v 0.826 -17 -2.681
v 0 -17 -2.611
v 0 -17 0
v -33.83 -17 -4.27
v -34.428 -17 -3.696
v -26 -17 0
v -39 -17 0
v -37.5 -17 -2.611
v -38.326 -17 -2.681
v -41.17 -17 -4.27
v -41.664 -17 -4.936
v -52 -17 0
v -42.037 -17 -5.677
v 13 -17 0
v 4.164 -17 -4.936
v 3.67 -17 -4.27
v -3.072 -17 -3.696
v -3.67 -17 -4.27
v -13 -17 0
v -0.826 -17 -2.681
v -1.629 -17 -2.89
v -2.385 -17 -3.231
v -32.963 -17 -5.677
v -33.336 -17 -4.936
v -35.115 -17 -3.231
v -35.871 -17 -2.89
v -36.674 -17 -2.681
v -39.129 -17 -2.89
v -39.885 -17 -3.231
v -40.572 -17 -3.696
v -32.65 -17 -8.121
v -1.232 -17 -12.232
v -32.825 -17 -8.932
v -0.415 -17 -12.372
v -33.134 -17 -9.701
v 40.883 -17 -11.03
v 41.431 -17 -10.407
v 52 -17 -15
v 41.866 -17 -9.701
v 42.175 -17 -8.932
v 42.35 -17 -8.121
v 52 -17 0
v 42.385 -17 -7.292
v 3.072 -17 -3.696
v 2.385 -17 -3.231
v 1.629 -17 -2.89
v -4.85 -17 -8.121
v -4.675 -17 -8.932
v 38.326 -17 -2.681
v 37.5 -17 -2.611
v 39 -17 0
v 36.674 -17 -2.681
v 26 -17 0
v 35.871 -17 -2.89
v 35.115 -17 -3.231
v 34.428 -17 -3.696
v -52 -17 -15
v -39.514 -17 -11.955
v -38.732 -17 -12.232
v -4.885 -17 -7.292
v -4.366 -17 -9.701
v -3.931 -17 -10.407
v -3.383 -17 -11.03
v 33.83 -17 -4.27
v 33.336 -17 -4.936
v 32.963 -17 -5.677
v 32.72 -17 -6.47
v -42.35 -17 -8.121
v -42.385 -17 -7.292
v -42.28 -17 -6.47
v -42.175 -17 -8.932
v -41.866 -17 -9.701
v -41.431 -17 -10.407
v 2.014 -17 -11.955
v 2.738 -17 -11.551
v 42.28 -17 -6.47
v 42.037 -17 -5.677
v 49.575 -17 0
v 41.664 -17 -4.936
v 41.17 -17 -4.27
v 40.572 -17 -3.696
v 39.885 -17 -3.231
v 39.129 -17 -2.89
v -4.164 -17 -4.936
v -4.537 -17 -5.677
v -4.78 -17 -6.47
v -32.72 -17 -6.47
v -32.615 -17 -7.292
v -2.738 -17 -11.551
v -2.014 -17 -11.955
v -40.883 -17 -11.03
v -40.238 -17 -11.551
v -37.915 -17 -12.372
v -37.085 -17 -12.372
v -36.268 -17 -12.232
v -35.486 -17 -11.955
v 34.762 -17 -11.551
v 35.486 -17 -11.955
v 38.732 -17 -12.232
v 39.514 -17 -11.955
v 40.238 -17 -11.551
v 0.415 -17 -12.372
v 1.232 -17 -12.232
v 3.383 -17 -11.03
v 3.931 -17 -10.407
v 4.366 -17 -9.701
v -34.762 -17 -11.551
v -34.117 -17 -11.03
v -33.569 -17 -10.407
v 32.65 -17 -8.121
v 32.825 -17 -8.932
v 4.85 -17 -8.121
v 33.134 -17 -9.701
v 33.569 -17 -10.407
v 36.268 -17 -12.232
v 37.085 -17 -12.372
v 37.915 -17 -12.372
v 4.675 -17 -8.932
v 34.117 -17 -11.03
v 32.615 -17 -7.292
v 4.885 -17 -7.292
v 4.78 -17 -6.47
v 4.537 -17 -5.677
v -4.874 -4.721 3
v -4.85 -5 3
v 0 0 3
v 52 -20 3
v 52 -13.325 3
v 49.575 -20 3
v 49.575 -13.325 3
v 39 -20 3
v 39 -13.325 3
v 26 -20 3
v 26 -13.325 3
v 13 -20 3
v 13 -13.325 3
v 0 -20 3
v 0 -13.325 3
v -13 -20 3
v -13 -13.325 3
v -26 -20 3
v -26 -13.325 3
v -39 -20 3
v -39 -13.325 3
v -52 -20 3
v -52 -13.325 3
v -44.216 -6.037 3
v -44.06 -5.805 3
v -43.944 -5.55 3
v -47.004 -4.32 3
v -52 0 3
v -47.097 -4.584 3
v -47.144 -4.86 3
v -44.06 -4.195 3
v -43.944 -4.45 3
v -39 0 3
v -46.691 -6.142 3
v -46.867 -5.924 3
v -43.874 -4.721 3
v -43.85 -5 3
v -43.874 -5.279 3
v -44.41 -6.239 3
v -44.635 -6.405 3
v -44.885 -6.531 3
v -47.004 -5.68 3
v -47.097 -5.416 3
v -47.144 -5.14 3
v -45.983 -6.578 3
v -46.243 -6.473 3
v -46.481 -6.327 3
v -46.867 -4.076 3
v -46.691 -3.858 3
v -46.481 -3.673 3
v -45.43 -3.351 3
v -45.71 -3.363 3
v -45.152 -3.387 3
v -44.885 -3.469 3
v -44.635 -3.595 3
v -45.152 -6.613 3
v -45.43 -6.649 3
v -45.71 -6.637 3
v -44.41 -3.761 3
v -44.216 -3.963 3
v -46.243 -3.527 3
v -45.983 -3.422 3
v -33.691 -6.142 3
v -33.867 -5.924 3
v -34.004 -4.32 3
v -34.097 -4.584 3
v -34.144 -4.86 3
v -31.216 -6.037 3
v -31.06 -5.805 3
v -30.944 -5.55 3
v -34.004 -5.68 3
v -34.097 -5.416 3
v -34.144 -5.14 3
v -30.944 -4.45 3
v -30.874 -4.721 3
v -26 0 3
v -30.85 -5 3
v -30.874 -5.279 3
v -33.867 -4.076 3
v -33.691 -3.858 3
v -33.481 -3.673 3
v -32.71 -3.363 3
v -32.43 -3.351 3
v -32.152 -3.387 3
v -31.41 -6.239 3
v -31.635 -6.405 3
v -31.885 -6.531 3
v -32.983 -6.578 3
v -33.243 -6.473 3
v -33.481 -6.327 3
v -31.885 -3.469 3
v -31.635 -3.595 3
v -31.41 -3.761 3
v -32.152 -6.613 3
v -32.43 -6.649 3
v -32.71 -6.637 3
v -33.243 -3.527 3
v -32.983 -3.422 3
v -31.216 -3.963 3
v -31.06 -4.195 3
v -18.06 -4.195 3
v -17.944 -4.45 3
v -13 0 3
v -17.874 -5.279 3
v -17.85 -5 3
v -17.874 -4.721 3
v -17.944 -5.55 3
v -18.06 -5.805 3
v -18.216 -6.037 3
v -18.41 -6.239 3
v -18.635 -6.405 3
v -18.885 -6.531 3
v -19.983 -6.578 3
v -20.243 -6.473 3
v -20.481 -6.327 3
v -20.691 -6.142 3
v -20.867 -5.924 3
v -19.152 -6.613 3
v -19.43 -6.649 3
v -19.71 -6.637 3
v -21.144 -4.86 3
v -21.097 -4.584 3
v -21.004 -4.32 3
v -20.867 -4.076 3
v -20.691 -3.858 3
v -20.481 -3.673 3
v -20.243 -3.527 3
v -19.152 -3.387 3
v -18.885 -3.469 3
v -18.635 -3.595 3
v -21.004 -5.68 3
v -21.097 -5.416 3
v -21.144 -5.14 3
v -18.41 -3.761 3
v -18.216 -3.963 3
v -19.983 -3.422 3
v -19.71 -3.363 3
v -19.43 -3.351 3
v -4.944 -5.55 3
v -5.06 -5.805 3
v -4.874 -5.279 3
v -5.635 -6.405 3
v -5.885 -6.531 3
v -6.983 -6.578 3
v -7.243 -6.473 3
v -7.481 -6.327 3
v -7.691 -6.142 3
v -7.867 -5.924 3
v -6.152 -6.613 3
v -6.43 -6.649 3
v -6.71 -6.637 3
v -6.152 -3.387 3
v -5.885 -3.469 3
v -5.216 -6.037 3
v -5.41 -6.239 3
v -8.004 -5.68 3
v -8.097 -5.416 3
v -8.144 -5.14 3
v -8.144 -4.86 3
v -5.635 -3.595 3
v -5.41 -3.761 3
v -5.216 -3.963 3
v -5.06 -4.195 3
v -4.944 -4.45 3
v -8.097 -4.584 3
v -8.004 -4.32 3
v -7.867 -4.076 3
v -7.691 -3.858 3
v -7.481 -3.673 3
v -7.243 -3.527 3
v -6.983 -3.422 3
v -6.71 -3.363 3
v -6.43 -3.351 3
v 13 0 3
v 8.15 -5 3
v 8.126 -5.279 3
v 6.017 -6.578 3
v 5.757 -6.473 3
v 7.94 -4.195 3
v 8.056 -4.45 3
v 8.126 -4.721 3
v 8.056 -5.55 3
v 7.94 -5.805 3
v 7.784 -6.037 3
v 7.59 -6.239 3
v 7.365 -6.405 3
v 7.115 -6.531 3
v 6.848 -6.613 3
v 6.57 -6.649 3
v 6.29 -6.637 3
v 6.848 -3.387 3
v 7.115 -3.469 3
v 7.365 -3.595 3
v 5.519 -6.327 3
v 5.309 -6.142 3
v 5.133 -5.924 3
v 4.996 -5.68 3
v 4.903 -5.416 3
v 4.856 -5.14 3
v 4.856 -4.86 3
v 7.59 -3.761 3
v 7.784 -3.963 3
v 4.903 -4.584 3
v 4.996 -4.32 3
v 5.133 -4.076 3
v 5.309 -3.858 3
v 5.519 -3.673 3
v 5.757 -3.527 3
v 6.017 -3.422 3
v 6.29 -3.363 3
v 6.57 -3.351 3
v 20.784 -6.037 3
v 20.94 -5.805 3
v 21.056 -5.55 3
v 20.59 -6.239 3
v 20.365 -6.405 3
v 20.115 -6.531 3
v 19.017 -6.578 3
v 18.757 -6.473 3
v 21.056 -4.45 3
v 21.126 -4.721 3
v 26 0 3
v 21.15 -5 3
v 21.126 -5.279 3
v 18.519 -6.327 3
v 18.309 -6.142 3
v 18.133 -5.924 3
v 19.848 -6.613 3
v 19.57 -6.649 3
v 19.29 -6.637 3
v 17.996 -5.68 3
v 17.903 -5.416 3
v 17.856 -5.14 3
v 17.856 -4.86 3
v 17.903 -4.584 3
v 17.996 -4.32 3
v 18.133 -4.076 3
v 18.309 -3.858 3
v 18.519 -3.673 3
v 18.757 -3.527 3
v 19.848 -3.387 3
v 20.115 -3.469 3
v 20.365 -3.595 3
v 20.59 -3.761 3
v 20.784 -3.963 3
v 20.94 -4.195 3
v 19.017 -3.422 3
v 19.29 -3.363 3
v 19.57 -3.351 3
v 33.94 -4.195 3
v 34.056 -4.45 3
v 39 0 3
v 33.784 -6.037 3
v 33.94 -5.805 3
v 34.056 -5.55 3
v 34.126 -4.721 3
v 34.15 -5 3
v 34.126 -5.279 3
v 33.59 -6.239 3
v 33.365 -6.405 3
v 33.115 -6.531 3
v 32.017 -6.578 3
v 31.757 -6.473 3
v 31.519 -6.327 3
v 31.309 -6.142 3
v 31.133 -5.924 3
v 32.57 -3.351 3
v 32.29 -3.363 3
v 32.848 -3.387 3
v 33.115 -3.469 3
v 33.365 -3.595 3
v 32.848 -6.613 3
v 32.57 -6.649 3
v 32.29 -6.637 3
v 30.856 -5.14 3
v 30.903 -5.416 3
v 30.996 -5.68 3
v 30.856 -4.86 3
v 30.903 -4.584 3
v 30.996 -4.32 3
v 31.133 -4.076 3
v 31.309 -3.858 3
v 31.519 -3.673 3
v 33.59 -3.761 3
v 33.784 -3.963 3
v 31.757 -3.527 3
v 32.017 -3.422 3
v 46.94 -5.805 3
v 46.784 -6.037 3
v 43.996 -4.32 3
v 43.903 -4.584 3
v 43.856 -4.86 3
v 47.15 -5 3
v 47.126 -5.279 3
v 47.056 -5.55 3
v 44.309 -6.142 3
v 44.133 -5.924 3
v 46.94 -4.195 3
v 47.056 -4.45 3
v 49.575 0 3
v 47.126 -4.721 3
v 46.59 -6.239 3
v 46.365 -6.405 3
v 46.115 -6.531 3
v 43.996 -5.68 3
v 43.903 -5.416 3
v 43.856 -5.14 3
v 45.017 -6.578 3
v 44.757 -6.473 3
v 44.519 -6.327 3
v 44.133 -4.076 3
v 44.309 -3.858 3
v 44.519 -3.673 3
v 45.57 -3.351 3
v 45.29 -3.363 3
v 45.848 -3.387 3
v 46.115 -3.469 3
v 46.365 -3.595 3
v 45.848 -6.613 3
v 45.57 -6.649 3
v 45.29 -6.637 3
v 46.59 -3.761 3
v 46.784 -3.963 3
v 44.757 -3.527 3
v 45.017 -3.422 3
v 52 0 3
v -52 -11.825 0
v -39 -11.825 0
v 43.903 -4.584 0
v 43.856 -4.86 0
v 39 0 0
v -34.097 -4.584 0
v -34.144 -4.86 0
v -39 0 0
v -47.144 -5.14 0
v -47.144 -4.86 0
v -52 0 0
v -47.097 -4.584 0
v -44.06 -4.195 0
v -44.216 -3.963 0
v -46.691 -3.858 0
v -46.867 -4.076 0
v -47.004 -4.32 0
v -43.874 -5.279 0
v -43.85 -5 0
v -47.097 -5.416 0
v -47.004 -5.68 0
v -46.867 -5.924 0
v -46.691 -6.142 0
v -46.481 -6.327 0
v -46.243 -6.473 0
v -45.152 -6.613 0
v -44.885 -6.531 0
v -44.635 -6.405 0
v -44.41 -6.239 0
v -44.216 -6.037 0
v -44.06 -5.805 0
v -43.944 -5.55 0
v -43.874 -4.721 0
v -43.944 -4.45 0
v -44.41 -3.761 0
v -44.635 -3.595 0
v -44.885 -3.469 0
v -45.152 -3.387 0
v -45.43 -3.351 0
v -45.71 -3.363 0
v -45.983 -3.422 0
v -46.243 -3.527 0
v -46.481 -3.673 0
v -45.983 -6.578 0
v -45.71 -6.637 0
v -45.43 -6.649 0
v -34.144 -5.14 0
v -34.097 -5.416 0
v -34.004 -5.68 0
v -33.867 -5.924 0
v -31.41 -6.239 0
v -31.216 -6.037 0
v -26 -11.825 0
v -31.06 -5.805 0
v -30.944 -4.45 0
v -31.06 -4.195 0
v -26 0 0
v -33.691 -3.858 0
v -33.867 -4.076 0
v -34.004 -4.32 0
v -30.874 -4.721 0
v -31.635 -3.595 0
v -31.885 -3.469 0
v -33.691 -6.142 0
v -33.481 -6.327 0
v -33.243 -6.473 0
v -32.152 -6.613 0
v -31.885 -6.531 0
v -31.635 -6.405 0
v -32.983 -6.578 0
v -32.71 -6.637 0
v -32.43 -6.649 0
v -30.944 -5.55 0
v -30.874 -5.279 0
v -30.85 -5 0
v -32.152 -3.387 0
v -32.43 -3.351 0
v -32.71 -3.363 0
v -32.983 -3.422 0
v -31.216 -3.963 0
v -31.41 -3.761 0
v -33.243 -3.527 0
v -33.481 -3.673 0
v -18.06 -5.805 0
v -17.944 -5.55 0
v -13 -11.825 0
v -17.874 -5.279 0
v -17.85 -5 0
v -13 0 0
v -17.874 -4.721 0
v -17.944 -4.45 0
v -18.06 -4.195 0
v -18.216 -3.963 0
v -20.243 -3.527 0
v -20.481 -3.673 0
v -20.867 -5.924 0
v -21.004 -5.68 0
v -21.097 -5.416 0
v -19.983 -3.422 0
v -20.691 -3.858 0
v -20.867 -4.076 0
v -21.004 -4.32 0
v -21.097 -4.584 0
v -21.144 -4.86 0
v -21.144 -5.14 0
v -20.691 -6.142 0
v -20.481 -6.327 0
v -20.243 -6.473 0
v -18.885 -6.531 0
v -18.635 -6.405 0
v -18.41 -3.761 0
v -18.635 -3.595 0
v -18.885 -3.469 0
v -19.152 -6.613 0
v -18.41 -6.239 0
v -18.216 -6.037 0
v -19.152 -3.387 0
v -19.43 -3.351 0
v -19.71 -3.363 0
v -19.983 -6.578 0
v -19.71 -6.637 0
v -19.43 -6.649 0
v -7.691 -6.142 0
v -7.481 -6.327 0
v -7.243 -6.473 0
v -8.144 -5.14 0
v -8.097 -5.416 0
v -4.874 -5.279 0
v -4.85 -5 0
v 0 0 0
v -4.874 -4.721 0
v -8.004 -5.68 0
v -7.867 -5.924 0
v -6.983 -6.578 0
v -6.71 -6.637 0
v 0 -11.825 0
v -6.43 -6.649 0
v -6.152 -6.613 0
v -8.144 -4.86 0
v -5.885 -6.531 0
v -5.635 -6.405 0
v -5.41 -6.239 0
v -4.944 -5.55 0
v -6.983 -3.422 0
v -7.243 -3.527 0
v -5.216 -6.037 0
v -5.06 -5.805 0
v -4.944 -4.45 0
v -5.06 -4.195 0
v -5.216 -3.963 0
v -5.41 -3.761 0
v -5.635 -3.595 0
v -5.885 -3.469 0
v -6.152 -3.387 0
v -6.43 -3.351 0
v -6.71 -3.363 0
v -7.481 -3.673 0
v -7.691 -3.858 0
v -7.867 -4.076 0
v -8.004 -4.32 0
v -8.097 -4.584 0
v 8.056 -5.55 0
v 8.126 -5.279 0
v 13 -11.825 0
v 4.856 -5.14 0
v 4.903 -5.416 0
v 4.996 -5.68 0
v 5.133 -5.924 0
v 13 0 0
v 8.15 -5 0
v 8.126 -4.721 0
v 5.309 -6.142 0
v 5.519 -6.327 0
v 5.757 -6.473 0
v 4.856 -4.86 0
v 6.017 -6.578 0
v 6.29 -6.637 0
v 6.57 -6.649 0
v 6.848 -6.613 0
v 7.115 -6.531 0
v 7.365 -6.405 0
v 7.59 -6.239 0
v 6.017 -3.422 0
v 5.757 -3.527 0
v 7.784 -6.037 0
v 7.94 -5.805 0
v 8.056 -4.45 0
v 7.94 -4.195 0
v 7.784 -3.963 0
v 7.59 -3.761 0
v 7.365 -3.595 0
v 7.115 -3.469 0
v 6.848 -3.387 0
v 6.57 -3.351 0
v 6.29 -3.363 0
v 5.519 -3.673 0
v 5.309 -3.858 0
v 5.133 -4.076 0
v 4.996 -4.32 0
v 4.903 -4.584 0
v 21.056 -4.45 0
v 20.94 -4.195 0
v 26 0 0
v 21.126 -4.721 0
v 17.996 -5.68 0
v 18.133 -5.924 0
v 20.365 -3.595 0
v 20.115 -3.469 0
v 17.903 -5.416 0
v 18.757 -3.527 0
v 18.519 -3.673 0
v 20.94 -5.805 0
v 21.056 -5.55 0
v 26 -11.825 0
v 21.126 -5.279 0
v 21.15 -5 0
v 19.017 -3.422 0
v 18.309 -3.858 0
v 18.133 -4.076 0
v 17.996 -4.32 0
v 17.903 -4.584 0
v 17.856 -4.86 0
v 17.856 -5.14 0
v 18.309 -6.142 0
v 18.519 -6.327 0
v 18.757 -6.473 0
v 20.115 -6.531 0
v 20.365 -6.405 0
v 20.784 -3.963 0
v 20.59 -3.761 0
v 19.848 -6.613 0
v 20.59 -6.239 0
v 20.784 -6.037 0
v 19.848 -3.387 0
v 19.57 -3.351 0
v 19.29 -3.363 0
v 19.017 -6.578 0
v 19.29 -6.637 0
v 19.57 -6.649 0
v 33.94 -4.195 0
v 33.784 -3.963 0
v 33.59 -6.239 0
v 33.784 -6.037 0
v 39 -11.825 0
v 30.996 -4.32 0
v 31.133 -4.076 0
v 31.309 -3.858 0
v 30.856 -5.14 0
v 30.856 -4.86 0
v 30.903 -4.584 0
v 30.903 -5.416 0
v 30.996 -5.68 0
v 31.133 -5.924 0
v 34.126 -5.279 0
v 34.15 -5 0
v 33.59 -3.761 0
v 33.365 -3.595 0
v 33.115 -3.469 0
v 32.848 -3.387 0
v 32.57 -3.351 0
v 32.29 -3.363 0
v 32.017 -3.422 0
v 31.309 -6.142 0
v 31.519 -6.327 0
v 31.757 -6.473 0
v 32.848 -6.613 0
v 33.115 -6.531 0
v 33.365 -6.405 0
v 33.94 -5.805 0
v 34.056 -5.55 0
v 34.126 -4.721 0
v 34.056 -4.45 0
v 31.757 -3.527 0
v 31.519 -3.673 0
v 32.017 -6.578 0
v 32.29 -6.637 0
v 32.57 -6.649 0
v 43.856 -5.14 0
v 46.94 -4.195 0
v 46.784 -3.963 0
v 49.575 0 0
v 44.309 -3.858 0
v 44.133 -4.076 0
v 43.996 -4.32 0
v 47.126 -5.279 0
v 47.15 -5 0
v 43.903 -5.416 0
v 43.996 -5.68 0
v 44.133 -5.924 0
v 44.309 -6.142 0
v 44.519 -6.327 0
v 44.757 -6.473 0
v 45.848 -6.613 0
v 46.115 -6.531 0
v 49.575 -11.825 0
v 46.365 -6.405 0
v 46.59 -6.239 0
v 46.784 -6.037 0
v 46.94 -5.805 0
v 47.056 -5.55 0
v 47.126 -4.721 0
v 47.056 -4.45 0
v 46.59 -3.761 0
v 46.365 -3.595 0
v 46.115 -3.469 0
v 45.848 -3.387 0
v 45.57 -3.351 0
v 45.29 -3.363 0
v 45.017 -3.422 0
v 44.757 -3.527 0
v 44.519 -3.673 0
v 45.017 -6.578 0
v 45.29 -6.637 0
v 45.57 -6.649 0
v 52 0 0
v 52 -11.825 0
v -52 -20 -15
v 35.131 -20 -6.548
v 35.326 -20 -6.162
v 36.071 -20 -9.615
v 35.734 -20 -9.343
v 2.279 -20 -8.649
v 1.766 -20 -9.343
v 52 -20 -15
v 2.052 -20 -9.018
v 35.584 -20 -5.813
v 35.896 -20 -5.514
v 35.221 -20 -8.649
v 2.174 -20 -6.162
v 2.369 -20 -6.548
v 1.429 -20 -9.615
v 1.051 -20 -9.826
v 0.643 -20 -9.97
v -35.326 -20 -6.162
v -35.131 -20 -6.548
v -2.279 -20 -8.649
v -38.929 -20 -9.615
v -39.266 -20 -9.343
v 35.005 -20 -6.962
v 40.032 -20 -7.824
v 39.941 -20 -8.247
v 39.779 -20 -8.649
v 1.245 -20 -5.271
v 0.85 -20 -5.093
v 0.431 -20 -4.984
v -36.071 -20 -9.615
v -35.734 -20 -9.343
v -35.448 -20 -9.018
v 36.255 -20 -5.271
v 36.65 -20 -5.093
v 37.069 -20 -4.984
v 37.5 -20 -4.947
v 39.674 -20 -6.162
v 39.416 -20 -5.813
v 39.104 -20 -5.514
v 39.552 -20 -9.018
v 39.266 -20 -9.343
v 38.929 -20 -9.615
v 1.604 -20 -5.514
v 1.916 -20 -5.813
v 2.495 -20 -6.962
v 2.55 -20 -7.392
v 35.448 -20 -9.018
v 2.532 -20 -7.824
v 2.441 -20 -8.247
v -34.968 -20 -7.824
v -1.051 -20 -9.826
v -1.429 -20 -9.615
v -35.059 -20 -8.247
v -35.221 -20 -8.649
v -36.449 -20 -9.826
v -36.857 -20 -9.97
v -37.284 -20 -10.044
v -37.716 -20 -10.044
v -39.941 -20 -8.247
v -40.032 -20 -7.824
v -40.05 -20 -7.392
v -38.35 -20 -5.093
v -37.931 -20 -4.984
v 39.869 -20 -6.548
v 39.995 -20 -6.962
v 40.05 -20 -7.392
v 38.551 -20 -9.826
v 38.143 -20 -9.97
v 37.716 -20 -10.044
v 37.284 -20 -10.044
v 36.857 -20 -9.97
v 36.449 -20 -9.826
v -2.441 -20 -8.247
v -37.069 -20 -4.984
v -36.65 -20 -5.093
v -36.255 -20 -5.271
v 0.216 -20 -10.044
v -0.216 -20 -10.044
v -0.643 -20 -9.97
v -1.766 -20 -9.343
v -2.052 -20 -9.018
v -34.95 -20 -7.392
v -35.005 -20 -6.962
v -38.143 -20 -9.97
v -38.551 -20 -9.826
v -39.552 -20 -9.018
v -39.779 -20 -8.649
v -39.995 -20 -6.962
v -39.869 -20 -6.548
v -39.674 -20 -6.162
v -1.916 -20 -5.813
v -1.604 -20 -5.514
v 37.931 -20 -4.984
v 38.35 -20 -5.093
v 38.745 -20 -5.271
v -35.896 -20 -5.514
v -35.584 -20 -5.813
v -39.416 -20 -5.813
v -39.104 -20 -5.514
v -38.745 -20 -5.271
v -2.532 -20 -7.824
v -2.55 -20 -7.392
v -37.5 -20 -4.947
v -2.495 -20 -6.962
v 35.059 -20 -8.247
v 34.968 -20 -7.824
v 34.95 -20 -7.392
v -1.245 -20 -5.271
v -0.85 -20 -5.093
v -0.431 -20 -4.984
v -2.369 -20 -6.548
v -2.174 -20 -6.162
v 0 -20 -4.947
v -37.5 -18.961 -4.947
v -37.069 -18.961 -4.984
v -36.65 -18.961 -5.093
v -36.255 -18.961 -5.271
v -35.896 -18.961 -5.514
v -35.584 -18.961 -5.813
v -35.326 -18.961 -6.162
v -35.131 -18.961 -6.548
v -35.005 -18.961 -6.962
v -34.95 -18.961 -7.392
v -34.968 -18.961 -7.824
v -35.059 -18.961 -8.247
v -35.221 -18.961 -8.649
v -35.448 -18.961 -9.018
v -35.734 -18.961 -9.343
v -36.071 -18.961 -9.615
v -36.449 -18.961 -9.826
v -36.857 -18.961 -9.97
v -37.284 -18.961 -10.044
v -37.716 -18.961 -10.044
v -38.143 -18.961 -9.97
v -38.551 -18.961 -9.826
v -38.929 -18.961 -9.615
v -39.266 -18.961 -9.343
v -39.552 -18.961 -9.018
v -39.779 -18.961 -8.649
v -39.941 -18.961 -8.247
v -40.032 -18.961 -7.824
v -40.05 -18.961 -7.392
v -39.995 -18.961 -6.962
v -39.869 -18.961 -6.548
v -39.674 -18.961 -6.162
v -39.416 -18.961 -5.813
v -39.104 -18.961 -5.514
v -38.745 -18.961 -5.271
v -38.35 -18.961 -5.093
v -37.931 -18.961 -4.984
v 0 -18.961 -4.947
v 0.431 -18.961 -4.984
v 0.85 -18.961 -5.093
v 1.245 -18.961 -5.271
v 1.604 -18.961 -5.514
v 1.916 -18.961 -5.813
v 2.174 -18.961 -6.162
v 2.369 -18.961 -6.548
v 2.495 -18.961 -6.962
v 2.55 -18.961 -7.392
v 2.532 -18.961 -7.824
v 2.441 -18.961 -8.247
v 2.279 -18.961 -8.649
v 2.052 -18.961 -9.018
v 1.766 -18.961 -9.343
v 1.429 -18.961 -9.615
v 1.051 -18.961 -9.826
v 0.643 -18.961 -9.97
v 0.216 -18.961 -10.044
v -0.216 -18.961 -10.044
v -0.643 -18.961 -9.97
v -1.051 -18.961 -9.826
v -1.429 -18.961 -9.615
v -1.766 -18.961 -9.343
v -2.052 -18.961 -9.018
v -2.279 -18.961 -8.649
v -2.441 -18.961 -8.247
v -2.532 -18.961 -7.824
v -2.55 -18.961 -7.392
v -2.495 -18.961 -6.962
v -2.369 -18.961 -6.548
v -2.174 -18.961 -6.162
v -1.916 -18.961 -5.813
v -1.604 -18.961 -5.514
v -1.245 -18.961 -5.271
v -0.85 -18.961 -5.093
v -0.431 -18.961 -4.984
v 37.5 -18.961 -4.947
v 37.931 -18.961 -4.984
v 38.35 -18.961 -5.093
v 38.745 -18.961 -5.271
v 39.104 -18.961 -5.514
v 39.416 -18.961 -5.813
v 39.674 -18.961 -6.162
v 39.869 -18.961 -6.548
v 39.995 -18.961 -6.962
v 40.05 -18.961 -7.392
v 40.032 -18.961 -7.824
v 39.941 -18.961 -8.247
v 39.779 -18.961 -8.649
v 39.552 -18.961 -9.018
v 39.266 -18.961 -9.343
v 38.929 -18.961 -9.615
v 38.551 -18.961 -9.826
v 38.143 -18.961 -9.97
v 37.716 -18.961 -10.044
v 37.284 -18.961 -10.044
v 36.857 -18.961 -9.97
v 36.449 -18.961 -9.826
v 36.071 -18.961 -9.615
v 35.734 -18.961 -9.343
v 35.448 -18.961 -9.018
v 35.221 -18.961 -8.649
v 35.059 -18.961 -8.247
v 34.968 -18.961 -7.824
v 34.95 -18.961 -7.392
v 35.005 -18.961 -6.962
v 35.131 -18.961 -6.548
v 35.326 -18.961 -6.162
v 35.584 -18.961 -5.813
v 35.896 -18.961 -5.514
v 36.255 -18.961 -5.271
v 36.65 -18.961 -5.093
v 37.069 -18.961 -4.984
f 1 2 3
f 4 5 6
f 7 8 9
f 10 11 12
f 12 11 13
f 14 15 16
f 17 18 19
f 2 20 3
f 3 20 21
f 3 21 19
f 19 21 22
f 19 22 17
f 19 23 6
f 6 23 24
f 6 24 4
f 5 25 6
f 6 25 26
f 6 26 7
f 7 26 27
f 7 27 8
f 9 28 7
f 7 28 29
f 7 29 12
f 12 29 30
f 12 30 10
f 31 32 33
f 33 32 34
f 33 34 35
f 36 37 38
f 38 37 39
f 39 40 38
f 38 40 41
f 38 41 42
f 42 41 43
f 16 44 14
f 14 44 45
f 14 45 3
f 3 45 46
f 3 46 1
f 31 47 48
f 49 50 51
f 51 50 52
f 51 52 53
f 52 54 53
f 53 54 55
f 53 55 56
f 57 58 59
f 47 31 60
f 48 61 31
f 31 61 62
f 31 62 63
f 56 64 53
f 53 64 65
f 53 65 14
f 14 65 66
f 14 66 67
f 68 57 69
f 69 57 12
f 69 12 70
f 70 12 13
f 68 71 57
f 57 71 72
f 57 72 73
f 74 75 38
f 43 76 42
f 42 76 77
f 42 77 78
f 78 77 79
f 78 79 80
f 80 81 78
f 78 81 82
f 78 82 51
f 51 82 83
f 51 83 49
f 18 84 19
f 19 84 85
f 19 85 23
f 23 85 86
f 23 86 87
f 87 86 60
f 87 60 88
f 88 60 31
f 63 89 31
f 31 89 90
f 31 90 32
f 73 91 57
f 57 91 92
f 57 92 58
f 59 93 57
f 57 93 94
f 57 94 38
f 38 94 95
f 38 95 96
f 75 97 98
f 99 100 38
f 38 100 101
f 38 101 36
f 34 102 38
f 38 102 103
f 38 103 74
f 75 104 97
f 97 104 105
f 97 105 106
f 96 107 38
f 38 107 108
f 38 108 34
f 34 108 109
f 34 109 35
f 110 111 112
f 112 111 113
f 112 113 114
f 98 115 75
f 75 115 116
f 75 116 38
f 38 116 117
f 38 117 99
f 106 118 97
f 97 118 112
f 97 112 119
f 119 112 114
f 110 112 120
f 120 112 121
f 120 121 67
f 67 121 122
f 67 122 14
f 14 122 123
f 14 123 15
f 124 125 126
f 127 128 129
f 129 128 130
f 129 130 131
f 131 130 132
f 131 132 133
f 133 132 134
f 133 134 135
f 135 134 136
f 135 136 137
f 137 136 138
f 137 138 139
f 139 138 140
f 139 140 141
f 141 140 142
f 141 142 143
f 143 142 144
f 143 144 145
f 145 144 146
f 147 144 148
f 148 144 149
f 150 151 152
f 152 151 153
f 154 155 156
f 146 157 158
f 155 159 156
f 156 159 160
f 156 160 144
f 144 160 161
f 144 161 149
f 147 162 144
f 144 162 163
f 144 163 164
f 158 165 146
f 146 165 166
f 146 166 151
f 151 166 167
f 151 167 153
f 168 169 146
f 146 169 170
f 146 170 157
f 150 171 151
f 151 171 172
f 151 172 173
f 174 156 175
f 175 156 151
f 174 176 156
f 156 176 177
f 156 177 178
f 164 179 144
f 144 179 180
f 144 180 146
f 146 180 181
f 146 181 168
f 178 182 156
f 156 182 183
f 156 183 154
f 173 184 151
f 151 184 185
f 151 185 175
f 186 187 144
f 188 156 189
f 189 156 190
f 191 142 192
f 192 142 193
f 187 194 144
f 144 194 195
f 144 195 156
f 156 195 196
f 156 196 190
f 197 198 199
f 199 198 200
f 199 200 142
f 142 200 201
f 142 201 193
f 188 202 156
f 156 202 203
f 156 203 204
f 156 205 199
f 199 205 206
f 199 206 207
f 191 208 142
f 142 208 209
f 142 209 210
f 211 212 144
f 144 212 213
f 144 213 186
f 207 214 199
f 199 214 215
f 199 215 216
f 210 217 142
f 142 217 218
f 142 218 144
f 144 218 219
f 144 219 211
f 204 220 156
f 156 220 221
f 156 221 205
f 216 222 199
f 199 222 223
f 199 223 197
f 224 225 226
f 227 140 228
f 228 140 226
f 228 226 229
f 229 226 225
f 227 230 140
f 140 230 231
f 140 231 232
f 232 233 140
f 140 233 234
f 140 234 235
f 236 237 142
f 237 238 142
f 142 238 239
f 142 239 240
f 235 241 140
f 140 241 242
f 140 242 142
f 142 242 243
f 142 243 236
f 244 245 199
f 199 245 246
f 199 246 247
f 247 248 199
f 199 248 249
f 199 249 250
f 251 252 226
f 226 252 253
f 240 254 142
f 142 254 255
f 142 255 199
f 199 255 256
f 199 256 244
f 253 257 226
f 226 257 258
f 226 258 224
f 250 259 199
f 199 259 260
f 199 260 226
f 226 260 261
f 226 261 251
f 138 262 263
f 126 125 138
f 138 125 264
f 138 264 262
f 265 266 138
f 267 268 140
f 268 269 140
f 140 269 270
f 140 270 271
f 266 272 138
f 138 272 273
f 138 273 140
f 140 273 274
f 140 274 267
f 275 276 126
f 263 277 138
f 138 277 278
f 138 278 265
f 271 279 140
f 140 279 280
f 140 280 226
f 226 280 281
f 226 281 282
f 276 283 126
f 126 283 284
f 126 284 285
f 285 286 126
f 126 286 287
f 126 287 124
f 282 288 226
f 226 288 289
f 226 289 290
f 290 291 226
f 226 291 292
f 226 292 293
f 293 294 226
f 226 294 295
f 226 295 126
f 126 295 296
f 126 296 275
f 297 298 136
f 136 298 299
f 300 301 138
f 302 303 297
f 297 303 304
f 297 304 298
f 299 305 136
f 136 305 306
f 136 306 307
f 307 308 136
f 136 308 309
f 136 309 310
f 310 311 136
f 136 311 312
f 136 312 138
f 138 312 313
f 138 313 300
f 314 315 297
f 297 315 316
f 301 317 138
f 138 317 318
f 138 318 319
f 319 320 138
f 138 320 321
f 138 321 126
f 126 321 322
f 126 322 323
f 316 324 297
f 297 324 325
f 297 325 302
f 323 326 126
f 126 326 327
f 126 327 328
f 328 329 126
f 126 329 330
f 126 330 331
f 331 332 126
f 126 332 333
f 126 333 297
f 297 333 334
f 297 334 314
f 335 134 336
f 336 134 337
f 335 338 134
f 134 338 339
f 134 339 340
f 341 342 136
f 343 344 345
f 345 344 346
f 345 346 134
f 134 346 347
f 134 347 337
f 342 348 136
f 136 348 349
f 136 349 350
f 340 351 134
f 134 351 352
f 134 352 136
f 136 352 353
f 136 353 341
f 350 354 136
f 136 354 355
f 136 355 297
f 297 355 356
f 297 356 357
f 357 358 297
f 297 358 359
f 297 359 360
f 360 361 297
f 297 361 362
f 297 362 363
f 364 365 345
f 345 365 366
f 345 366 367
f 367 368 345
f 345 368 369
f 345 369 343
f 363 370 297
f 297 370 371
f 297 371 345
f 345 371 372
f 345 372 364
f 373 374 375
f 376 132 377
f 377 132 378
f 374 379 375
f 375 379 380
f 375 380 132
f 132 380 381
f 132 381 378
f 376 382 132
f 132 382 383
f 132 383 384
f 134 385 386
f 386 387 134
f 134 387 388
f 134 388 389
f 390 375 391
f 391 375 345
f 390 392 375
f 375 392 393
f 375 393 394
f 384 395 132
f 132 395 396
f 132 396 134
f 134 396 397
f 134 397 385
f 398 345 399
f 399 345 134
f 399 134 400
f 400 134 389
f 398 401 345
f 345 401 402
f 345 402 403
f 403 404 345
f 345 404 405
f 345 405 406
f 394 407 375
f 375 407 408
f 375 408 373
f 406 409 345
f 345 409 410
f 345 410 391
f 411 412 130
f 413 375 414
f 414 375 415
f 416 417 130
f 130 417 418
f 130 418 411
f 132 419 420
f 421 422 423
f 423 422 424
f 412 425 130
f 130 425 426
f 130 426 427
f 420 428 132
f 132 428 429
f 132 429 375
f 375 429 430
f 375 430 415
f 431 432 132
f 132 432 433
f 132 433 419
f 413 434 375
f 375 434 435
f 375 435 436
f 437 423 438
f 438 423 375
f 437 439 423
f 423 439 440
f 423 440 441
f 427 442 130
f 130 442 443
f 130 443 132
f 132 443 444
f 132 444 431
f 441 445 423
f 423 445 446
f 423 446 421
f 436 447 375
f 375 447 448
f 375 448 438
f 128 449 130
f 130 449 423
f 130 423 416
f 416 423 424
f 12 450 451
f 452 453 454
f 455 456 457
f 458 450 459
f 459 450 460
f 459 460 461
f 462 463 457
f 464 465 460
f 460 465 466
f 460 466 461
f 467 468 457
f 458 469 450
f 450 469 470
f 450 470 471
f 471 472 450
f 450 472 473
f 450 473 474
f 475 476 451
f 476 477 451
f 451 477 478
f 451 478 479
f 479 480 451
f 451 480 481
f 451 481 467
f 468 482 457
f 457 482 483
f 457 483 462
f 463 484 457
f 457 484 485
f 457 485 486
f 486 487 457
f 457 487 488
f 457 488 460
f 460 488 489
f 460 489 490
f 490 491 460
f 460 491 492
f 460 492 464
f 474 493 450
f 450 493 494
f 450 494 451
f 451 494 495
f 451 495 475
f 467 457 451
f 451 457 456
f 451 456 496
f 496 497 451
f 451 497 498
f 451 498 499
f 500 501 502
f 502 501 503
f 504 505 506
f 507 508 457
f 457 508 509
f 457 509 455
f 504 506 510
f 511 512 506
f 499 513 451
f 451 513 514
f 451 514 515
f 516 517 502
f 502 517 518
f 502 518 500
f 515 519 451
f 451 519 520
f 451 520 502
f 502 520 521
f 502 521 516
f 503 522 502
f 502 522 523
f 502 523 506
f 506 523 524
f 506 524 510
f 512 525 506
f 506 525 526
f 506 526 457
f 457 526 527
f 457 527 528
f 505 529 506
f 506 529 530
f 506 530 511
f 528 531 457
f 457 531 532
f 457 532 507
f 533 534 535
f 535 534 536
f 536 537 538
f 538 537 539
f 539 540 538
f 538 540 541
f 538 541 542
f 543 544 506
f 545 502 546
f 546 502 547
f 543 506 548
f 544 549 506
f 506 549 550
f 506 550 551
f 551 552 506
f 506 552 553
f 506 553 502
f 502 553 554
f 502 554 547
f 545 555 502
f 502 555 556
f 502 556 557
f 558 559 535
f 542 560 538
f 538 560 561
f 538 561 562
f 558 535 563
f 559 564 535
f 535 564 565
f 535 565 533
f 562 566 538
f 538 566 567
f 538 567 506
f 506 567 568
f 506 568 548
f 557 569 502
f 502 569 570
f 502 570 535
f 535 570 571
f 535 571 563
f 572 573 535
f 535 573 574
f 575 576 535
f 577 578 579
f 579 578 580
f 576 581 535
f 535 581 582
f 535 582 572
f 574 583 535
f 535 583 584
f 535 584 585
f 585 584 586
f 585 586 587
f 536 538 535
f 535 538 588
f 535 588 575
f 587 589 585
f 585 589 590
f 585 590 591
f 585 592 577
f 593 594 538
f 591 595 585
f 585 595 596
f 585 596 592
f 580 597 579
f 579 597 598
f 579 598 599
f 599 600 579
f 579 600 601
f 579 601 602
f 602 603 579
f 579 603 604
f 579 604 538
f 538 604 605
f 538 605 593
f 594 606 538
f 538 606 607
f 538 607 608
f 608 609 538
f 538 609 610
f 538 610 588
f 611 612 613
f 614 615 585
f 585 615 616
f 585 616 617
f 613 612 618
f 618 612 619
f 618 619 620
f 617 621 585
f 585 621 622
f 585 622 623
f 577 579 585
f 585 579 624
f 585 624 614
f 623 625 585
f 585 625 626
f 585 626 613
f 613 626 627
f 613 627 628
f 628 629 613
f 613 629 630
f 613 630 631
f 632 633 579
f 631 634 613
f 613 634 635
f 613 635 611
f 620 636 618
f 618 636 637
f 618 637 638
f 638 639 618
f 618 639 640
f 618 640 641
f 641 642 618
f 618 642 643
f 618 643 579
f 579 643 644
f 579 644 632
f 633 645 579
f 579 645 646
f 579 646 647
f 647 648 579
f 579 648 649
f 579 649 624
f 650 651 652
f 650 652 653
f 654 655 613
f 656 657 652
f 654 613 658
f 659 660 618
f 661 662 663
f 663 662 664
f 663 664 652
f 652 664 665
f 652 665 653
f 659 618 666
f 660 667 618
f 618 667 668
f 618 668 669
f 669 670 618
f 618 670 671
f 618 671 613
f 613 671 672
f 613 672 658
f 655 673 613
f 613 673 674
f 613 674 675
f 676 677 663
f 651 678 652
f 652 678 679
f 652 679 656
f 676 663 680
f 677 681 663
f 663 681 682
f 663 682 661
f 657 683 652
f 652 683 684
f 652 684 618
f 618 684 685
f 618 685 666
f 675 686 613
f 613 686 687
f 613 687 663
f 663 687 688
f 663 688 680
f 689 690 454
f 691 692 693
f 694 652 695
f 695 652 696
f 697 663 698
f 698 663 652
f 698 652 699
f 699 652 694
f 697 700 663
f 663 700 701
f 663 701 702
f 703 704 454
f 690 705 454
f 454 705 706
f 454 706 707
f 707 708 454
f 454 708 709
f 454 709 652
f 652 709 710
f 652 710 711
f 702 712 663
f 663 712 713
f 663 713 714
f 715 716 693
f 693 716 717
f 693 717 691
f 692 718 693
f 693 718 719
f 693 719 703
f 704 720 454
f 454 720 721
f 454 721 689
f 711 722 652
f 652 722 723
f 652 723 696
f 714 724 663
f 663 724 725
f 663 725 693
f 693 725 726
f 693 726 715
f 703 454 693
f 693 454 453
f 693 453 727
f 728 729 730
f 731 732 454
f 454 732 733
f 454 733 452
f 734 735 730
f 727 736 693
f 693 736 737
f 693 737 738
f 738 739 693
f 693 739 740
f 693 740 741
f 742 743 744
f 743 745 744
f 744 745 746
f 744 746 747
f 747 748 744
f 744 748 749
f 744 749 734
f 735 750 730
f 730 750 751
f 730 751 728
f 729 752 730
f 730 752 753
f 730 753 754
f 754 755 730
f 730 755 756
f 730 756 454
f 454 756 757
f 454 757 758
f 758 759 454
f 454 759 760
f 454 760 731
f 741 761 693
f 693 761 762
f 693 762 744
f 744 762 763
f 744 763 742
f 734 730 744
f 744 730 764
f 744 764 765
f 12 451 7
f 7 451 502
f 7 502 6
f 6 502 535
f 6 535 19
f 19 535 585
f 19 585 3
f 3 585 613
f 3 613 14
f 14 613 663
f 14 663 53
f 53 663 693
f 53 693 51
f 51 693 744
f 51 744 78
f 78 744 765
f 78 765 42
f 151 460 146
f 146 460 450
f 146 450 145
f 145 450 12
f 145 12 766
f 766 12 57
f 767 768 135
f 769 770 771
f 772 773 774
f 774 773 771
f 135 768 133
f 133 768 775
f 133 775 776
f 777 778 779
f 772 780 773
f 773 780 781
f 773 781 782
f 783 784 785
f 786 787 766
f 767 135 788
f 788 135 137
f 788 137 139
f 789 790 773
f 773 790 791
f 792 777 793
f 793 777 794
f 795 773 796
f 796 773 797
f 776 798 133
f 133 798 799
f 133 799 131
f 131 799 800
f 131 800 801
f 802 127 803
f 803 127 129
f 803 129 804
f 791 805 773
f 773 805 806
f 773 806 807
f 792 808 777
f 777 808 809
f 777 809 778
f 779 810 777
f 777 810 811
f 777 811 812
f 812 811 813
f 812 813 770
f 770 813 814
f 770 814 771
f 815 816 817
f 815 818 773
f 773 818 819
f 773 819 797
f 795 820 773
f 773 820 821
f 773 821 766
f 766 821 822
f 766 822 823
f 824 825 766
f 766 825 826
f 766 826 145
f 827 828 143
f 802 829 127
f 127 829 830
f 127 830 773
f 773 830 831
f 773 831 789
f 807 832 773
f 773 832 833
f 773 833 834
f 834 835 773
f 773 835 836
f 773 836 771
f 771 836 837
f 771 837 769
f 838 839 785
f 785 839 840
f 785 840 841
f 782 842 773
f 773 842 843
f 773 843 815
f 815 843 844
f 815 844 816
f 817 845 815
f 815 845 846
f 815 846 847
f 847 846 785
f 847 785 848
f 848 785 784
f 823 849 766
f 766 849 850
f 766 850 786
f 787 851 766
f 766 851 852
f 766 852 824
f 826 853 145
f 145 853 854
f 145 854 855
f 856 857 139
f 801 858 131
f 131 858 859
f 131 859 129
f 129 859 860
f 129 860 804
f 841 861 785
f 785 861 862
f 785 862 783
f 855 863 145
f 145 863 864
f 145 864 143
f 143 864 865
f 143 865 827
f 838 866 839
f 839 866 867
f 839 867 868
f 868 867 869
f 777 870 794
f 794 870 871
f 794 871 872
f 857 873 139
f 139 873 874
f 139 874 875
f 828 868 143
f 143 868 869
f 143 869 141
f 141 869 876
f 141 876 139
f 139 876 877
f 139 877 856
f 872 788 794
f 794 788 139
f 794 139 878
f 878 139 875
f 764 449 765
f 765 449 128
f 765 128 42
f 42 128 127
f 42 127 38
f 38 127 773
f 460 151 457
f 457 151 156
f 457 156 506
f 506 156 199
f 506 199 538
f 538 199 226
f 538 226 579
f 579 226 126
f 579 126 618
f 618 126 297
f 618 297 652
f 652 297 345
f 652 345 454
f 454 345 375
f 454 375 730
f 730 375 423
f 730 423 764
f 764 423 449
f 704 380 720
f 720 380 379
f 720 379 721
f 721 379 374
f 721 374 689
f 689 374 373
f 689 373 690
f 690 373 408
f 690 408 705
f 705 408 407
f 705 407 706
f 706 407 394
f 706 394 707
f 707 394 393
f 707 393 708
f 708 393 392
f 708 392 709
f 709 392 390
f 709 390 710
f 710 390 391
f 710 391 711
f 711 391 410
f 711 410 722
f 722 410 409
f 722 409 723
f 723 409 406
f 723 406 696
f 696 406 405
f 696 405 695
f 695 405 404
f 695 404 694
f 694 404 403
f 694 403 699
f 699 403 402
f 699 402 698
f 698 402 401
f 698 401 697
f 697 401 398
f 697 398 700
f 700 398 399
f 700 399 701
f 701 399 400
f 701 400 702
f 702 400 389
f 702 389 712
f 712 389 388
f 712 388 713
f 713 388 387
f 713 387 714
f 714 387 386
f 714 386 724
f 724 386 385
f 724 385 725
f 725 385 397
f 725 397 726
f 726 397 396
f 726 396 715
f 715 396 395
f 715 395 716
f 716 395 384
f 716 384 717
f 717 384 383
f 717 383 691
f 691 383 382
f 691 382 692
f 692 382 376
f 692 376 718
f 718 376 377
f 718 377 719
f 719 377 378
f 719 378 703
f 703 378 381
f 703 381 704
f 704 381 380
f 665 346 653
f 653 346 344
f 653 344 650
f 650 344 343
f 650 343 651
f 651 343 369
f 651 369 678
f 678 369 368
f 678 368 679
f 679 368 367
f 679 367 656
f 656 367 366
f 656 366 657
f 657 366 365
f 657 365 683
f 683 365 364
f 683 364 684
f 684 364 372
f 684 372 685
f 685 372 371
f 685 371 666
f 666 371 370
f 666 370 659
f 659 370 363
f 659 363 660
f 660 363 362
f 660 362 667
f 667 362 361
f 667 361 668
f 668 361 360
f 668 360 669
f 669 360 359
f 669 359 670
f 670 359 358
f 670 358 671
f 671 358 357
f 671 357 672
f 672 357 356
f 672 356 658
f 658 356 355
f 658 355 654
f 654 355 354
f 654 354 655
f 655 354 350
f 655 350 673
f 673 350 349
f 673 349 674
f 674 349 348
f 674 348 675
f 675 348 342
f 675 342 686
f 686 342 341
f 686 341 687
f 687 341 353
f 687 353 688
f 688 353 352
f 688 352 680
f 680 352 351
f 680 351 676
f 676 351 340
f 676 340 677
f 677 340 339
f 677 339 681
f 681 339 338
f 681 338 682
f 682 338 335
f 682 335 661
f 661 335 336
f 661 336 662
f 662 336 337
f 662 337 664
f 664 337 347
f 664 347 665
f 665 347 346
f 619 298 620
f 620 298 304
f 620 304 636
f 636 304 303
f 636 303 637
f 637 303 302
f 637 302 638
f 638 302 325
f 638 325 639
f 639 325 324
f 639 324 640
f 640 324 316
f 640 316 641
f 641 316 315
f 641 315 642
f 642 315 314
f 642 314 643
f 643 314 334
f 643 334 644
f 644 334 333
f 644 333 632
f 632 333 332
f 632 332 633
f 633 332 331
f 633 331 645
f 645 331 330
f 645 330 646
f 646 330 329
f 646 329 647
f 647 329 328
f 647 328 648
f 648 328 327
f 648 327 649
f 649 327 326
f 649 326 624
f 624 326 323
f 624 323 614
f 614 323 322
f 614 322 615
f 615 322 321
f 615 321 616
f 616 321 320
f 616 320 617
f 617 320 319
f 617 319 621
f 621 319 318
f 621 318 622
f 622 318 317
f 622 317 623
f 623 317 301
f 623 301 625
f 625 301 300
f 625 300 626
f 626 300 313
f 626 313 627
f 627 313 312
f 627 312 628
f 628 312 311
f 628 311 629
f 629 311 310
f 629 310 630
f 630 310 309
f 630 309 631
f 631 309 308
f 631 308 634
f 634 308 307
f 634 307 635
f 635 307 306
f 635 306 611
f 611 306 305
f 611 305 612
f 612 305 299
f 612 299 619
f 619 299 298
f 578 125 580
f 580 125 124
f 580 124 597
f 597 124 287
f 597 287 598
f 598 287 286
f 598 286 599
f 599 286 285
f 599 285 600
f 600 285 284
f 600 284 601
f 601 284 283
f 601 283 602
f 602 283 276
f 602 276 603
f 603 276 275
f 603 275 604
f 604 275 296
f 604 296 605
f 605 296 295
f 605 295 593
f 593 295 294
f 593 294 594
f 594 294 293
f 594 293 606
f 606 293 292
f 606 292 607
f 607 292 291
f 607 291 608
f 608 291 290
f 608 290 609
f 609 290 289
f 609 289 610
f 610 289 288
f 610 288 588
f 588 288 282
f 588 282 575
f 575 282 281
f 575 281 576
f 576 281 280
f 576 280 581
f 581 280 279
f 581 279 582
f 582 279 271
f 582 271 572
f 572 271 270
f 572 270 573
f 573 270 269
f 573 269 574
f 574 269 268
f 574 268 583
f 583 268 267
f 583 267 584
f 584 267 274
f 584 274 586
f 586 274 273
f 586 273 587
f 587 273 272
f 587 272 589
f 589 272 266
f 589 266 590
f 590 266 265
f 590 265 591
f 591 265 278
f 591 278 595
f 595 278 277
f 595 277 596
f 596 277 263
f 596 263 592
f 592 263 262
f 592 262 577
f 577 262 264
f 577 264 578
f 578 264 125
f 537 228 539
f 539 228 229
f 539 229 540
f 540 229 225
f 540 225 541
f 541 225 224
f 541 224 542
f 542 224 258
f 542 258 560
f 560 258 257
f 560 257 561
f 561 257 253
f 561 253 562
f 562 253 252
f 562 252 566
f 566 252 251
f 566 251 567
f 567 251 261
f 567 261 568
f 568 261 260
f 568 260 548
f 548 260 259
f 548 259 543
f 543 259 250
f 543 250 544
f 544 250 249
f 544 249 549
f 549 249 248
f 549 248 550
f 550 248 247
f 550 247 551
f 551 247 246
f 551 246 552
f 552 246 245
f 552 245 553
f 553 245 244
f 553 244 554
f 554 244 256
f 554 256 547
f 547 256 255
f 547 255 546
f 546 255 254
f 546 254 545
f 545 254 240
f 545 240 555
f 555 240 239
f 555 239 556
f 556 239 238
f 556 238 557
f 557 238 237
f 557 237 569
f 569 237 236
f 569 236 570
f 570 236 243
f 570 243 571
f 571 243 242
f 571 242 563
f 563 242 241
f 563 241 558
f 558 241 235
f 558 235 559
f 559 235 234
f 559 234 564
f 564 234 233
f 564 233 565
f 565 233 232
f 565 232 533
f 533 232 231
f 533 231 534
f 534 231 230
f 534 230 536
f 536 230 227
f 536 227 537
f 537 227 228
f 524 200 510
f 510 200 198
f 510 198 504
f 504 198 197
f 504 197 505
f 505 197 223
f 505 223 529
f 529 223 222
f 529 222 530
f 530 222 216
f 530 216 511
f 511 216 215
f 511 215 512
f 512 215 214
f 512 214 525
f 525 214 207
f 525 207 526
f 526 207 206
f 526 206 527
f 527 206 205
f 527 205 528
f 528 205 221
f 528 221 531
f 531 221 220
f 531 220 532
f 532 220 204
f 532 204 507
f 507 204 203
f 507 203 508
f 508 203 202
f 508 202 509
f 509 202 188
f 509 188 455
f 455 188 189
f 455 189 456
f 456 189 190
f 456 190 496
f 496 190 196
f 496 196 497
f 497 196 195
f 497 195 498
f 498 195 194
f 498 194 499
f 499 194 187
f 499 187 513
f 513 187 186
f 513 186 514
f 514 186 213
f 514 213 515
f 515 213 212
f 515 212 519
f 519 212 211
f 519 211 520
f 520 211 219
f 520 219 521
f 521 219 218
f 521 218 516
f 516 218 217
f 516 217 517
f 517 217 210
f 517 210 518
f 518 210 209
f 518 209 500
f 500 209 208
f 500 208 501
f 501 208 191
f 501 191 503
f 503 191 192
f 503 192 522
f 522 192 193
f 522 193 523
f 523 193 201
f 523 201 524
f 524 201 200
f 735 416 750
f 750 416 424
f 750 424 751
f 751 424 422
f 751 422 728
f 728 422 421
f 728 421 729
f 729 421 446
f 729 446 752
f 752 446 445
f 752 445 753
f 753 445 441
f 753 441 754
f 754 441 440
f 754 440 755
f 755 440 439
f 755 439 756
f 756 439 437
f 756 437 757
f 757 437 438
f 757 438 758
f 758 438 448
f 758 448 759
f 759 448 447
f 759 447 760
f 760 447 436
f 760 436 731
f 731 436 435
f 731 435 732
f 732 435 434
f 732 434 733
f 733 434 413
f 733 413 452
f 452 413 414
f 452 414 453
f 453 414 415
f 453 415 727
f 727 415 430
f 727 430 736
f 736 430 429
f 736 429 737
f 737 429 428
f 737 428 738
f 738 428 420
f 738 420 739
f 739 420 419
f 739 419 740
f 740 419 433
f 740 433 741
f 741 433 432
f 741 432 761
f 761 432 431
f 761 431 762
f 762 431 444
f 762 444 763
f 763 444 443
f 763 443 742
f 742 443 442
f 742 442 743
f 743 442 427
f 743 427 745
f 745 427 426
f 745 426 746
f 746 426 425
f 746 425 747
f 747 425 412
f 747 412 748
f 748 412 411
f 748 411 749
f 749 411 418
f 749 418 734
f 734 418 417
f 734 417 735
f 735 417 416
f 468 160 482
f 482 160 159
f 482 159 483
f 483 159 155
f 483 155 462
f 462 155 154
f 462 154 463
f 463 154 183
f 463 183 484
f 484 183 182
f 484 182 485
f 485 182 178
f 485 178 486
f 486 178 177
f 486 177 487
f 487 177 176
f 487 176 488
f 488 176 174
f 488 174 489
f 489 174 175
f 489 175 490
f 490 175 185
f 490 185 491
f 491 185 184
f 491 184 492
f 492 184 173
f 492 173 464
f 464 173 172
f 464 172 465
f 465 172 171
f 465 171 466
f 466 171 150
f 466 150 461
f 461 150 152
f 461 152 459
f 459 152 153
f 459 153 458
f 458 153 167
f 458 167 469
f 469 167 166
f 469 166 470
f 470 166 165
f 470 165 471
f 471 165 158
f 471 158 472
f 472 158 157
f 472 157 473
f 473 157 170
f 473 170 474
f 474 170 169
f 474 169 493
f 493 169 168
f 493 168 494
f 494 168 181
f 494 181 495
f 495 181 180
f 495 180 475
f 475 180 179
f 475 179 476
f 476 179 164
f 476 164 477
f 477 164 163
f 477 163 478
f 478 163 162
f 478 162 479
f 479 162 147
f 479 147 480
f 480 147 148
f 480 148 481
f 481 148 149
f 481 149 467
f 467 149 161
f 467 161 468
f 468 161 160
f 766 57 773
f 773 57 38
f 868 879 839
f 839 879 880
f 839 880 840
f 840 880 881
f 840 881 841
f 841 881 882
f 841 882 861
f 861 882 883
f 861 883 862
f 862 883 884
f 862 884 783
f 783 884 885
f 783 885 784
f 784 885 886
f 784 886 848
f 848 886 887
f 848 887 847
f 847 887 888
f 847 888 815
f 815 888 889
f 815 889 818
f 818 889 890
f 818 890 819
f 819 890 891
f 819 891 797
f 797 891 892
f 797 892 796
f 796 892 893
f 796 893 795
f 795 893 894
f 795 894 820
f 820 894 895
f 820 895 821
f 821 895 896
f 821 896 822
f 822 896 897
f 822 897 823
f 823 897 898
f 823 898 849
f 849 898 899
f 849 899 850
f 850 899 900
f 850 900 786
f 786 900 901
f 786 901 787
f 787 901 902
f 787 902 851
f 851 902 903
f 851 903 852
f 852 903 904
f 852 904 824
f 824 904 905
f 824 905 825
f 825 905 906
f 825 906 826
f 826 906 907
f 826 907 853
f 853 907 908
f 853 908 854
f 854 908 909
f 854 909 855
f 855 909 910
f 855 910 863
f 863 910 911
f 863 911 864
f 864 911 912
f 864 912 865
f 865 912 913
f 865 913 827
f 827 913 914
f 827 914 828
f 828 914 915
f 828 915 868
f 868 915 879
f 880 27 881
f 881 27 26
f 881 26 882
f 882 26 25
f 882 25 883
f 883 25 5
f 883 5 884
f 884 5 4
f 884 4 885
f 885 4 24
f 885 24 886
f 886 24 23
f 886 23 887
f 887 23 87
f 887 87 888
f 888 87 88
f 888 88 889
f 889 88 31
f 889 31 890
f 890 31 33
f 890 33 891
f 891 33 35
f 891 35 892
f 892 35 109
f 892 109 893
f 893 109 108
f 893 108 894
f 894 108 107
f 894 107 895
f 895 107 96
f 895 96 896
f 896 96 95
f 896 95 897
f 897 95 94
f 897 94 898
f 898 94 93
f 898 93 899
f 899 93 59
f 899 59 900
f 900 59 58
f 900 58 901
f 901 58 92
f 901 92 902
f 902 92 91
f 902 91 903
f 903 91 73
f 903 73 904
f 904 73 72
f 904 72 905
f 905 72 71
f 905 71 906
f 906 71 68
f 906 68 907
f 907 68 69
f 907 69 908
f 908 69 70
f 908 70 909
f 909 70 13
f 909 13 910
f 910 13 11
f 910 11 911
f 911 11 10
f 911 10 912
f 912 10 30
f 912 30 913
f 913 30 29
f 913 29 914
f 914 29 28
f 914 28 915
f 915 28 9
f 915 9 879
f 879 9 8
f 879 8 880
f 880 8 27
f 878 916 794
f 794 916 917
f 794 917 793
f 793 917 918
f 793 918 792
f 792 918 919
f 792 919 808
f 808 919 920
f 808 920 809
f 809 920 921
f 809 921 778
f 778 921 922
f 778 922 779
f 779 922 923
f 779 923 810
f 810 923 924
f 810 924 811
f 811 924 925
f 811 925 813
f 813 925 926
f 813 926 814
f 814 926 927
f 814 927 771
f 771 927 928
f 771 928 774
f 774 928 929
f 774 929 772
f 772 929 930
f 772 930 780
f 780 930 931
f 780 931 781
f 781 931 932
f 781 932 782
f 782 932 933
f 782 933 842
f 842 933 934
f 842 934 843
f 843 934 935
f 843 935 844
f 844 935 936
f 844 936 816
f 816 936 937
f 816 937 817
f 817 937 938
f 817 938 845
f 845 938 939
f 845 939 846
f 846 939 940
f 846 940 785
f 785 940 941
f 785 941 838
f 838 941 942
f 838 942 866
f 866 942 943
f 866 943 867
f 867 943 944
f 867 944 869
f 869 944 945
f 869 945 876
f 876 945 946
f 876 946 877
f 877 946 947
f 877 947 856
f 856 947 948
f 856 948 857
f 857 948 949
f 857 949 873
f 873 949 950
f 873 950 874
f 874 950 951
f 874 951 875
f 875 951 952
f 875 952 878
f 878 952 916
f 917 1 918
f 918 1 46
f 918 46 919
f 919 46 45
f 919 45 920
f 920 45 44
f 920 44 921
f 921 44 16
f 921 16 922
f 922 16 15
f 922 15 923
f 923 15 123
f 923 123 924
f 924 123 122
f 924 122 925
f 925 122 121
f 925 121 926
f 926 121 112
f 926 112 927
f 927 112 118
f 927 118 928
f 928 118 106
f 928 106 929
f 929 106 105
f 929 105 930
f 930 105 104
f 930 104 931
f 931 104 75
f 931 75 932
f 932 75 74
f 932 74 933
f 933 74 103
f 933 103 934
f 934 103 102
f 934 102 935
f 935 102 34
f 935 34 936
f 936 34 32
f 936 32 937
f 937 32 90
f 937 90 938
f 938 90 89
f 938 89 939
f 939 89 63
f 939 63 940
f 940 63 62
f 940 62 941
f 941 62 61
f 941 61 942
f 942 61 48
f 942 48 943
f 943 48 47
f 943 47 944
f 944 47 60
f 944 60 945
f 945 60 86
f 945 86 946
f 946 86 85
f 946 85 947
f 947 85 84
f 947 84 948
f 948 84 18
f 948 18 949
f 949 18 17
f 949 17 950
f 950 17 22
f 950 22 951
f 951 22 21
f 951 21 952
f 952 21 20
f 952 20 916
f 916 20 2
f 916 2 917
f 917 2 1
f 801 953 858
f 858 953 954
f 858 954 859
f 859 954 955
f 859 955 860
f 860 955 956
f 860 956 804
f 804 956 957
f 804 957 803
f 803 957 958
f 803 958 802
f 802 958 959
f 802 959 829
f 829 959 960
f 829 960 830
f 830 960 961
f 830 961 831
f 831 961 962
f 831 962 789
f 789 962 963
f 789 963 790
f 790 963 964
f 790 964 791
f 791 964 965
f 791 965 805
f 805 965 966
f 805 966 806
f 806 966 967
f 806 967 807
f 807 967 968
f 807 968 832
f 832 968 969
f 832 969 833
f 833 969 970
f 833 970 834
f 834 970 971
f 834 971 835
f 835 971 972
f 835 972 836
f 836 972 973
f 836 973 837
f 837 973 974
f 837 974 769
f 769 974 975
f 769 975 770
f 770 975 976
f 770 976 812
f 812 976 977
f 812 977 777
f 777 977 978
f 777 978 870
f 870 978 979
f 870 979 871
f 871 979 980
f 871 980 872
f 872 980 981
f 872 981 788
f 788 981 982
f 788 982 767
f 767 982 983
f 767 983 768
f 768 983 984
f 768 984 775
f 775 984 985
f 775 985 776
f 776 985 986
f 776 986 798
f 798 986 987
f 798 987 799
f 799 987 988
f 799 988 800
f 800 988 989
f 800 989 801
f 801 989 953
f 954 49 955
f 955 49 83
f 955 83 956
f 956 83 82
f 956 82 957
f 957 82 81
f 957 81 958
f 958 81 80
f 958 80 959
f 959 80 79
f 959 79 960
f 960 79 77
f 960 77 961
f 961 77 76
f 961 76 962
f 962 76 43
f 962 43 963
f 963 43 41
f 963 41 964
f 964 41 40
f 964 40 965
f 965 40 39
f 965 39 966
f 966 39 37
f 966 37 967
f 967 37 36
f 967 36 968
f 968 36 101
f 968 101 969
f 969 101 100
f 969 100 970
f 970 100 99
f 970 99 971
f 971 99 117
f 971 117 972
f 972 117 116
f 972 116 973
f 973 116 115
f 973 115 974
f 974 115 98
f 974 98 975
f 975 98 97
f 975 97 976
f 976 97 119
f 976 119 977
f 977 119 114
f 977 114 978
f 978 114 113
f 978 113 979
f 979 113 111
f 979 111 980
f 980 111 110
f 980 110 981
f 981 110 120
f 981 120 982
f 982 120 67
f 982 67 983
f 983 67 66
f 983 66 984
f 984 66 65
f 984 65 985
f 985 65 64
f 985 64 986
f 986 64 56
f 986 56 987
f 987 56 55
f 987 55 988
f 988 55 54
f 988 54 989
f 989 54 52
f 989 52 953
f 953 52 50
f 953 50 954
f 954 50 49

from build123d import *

# Parameters (mm, degrees)
SKETCH2_W                                  = 104
SKETCH2_H                                  = 20
BOSS_EXTRUDE1_DEPTH                        = 3
M4X0_7_TAPPED_HOLE1_D                      = 3.3
SKETCH5_W                                  = 104
SKETCH5_H                                  = 3
BOSS_EXTRUDE2_DEPTH                        = 15
CSK_FOR_10_FLAT_HEAD_MACHINE_SCREW_2_COUNT = 2
CSK_FOR_10_FLAT_HEAD_MACHINE_SCREW_2_PITCH = 37.5
CSK_FOR_10_FLAT_HEAD_MACHINE_SCREW_3_COUNT = 2
CSK_FOR_10_FLAT_HEAD_MACHINE_SCREW_3_PITCH = 75


with BuildPart() as part:
    # Sketch2 → Boss-Extrude1 (new body)
    with BuildSketch(Plane.XY):
        with Locations((0, -10)):
            Rectangle(SKETCH2_W, SKETCH2_H)
    extrude(amount=BOSS_EXTRUDE1_DEPTH)

    # M4x0.7 Tapped Hole1 (through all)
    with Locations(Plane.XY.offset(3)):
        with Locations((-45.5, -5), (45.5, -5), (-32.5, -5), (-19.5, -5), (-6.5, -5), (6.5, -5), (19.5, -5), (32.5, -5)):
            Hole(M4X0_7_TAPPED_HOLE1_D / 2)

    # Sketch5 → Boss-Extrude2 (add)
    with BuildSketch(Plane(origin=(0, 0, 0), x_dir=(-1, 0, 0), z_dir=(0, 0, -1))):
        with Locations((0, -18.5)):
            Rectangle(SKETCH5_W, SKETCH5_H)
    extrude(amount=BOSS_EXTRUDE2_DEPTH)

    # Sketch7 → CSK for #10 Flat Head Machine Screw (100)1 (revolve, cut)
    with BuildSketch(Plane(origin=(37.5, -17, -7.5), x_dir=(0, 0, 1), z_dir=(1, 0, 0))):
        Polygon((0, 0), (0, 3), (2.5527, 3), (2.5527, 1.960808018), (4.8895, 0), align=None)
    csk_for_10_flat_head_machine_screw_100 = revolve(axis=Axis((37.5, -10.65, -7.5), (0, -1, 0)), mode=Mode.SUBTRACT)

    # CSK for _10 Flat Head Machine Screw  2: CSK for #10 Flat Head Machine Screw (100)1 ×2
    with Locations(*[(-i * CSK_FOR_10_FLAT_HEAD_MACHINE_SCREW_2_PITCH, 0, 0) for i in range(1, CSK_FOR_10_FLAT_HEAD_MACHINE_SCREW_2_COUNT)]):
        add(csk_for_10_flat_head_machine_screw_100, mode=Mode.SUBTRACT)

    # CSK for _10 Flat Head Machine Screw  3: CSK for #10 Flat Head Machine Screw (100)1 ×2
    with Locations(*[(-i * CSK_FOR_10_FLAT_HEAD_MACHINE_SCREW_3_PITCH, 0, 0) for i in range(1, CSK_FOR_10_FLAT_HEAD_MACHINE_SCREW_3_COUNT)]):
        add(csk_for_10_flat_head_machine_screw_100, mode=Mode.SUBTRACT)


solid = part.part
